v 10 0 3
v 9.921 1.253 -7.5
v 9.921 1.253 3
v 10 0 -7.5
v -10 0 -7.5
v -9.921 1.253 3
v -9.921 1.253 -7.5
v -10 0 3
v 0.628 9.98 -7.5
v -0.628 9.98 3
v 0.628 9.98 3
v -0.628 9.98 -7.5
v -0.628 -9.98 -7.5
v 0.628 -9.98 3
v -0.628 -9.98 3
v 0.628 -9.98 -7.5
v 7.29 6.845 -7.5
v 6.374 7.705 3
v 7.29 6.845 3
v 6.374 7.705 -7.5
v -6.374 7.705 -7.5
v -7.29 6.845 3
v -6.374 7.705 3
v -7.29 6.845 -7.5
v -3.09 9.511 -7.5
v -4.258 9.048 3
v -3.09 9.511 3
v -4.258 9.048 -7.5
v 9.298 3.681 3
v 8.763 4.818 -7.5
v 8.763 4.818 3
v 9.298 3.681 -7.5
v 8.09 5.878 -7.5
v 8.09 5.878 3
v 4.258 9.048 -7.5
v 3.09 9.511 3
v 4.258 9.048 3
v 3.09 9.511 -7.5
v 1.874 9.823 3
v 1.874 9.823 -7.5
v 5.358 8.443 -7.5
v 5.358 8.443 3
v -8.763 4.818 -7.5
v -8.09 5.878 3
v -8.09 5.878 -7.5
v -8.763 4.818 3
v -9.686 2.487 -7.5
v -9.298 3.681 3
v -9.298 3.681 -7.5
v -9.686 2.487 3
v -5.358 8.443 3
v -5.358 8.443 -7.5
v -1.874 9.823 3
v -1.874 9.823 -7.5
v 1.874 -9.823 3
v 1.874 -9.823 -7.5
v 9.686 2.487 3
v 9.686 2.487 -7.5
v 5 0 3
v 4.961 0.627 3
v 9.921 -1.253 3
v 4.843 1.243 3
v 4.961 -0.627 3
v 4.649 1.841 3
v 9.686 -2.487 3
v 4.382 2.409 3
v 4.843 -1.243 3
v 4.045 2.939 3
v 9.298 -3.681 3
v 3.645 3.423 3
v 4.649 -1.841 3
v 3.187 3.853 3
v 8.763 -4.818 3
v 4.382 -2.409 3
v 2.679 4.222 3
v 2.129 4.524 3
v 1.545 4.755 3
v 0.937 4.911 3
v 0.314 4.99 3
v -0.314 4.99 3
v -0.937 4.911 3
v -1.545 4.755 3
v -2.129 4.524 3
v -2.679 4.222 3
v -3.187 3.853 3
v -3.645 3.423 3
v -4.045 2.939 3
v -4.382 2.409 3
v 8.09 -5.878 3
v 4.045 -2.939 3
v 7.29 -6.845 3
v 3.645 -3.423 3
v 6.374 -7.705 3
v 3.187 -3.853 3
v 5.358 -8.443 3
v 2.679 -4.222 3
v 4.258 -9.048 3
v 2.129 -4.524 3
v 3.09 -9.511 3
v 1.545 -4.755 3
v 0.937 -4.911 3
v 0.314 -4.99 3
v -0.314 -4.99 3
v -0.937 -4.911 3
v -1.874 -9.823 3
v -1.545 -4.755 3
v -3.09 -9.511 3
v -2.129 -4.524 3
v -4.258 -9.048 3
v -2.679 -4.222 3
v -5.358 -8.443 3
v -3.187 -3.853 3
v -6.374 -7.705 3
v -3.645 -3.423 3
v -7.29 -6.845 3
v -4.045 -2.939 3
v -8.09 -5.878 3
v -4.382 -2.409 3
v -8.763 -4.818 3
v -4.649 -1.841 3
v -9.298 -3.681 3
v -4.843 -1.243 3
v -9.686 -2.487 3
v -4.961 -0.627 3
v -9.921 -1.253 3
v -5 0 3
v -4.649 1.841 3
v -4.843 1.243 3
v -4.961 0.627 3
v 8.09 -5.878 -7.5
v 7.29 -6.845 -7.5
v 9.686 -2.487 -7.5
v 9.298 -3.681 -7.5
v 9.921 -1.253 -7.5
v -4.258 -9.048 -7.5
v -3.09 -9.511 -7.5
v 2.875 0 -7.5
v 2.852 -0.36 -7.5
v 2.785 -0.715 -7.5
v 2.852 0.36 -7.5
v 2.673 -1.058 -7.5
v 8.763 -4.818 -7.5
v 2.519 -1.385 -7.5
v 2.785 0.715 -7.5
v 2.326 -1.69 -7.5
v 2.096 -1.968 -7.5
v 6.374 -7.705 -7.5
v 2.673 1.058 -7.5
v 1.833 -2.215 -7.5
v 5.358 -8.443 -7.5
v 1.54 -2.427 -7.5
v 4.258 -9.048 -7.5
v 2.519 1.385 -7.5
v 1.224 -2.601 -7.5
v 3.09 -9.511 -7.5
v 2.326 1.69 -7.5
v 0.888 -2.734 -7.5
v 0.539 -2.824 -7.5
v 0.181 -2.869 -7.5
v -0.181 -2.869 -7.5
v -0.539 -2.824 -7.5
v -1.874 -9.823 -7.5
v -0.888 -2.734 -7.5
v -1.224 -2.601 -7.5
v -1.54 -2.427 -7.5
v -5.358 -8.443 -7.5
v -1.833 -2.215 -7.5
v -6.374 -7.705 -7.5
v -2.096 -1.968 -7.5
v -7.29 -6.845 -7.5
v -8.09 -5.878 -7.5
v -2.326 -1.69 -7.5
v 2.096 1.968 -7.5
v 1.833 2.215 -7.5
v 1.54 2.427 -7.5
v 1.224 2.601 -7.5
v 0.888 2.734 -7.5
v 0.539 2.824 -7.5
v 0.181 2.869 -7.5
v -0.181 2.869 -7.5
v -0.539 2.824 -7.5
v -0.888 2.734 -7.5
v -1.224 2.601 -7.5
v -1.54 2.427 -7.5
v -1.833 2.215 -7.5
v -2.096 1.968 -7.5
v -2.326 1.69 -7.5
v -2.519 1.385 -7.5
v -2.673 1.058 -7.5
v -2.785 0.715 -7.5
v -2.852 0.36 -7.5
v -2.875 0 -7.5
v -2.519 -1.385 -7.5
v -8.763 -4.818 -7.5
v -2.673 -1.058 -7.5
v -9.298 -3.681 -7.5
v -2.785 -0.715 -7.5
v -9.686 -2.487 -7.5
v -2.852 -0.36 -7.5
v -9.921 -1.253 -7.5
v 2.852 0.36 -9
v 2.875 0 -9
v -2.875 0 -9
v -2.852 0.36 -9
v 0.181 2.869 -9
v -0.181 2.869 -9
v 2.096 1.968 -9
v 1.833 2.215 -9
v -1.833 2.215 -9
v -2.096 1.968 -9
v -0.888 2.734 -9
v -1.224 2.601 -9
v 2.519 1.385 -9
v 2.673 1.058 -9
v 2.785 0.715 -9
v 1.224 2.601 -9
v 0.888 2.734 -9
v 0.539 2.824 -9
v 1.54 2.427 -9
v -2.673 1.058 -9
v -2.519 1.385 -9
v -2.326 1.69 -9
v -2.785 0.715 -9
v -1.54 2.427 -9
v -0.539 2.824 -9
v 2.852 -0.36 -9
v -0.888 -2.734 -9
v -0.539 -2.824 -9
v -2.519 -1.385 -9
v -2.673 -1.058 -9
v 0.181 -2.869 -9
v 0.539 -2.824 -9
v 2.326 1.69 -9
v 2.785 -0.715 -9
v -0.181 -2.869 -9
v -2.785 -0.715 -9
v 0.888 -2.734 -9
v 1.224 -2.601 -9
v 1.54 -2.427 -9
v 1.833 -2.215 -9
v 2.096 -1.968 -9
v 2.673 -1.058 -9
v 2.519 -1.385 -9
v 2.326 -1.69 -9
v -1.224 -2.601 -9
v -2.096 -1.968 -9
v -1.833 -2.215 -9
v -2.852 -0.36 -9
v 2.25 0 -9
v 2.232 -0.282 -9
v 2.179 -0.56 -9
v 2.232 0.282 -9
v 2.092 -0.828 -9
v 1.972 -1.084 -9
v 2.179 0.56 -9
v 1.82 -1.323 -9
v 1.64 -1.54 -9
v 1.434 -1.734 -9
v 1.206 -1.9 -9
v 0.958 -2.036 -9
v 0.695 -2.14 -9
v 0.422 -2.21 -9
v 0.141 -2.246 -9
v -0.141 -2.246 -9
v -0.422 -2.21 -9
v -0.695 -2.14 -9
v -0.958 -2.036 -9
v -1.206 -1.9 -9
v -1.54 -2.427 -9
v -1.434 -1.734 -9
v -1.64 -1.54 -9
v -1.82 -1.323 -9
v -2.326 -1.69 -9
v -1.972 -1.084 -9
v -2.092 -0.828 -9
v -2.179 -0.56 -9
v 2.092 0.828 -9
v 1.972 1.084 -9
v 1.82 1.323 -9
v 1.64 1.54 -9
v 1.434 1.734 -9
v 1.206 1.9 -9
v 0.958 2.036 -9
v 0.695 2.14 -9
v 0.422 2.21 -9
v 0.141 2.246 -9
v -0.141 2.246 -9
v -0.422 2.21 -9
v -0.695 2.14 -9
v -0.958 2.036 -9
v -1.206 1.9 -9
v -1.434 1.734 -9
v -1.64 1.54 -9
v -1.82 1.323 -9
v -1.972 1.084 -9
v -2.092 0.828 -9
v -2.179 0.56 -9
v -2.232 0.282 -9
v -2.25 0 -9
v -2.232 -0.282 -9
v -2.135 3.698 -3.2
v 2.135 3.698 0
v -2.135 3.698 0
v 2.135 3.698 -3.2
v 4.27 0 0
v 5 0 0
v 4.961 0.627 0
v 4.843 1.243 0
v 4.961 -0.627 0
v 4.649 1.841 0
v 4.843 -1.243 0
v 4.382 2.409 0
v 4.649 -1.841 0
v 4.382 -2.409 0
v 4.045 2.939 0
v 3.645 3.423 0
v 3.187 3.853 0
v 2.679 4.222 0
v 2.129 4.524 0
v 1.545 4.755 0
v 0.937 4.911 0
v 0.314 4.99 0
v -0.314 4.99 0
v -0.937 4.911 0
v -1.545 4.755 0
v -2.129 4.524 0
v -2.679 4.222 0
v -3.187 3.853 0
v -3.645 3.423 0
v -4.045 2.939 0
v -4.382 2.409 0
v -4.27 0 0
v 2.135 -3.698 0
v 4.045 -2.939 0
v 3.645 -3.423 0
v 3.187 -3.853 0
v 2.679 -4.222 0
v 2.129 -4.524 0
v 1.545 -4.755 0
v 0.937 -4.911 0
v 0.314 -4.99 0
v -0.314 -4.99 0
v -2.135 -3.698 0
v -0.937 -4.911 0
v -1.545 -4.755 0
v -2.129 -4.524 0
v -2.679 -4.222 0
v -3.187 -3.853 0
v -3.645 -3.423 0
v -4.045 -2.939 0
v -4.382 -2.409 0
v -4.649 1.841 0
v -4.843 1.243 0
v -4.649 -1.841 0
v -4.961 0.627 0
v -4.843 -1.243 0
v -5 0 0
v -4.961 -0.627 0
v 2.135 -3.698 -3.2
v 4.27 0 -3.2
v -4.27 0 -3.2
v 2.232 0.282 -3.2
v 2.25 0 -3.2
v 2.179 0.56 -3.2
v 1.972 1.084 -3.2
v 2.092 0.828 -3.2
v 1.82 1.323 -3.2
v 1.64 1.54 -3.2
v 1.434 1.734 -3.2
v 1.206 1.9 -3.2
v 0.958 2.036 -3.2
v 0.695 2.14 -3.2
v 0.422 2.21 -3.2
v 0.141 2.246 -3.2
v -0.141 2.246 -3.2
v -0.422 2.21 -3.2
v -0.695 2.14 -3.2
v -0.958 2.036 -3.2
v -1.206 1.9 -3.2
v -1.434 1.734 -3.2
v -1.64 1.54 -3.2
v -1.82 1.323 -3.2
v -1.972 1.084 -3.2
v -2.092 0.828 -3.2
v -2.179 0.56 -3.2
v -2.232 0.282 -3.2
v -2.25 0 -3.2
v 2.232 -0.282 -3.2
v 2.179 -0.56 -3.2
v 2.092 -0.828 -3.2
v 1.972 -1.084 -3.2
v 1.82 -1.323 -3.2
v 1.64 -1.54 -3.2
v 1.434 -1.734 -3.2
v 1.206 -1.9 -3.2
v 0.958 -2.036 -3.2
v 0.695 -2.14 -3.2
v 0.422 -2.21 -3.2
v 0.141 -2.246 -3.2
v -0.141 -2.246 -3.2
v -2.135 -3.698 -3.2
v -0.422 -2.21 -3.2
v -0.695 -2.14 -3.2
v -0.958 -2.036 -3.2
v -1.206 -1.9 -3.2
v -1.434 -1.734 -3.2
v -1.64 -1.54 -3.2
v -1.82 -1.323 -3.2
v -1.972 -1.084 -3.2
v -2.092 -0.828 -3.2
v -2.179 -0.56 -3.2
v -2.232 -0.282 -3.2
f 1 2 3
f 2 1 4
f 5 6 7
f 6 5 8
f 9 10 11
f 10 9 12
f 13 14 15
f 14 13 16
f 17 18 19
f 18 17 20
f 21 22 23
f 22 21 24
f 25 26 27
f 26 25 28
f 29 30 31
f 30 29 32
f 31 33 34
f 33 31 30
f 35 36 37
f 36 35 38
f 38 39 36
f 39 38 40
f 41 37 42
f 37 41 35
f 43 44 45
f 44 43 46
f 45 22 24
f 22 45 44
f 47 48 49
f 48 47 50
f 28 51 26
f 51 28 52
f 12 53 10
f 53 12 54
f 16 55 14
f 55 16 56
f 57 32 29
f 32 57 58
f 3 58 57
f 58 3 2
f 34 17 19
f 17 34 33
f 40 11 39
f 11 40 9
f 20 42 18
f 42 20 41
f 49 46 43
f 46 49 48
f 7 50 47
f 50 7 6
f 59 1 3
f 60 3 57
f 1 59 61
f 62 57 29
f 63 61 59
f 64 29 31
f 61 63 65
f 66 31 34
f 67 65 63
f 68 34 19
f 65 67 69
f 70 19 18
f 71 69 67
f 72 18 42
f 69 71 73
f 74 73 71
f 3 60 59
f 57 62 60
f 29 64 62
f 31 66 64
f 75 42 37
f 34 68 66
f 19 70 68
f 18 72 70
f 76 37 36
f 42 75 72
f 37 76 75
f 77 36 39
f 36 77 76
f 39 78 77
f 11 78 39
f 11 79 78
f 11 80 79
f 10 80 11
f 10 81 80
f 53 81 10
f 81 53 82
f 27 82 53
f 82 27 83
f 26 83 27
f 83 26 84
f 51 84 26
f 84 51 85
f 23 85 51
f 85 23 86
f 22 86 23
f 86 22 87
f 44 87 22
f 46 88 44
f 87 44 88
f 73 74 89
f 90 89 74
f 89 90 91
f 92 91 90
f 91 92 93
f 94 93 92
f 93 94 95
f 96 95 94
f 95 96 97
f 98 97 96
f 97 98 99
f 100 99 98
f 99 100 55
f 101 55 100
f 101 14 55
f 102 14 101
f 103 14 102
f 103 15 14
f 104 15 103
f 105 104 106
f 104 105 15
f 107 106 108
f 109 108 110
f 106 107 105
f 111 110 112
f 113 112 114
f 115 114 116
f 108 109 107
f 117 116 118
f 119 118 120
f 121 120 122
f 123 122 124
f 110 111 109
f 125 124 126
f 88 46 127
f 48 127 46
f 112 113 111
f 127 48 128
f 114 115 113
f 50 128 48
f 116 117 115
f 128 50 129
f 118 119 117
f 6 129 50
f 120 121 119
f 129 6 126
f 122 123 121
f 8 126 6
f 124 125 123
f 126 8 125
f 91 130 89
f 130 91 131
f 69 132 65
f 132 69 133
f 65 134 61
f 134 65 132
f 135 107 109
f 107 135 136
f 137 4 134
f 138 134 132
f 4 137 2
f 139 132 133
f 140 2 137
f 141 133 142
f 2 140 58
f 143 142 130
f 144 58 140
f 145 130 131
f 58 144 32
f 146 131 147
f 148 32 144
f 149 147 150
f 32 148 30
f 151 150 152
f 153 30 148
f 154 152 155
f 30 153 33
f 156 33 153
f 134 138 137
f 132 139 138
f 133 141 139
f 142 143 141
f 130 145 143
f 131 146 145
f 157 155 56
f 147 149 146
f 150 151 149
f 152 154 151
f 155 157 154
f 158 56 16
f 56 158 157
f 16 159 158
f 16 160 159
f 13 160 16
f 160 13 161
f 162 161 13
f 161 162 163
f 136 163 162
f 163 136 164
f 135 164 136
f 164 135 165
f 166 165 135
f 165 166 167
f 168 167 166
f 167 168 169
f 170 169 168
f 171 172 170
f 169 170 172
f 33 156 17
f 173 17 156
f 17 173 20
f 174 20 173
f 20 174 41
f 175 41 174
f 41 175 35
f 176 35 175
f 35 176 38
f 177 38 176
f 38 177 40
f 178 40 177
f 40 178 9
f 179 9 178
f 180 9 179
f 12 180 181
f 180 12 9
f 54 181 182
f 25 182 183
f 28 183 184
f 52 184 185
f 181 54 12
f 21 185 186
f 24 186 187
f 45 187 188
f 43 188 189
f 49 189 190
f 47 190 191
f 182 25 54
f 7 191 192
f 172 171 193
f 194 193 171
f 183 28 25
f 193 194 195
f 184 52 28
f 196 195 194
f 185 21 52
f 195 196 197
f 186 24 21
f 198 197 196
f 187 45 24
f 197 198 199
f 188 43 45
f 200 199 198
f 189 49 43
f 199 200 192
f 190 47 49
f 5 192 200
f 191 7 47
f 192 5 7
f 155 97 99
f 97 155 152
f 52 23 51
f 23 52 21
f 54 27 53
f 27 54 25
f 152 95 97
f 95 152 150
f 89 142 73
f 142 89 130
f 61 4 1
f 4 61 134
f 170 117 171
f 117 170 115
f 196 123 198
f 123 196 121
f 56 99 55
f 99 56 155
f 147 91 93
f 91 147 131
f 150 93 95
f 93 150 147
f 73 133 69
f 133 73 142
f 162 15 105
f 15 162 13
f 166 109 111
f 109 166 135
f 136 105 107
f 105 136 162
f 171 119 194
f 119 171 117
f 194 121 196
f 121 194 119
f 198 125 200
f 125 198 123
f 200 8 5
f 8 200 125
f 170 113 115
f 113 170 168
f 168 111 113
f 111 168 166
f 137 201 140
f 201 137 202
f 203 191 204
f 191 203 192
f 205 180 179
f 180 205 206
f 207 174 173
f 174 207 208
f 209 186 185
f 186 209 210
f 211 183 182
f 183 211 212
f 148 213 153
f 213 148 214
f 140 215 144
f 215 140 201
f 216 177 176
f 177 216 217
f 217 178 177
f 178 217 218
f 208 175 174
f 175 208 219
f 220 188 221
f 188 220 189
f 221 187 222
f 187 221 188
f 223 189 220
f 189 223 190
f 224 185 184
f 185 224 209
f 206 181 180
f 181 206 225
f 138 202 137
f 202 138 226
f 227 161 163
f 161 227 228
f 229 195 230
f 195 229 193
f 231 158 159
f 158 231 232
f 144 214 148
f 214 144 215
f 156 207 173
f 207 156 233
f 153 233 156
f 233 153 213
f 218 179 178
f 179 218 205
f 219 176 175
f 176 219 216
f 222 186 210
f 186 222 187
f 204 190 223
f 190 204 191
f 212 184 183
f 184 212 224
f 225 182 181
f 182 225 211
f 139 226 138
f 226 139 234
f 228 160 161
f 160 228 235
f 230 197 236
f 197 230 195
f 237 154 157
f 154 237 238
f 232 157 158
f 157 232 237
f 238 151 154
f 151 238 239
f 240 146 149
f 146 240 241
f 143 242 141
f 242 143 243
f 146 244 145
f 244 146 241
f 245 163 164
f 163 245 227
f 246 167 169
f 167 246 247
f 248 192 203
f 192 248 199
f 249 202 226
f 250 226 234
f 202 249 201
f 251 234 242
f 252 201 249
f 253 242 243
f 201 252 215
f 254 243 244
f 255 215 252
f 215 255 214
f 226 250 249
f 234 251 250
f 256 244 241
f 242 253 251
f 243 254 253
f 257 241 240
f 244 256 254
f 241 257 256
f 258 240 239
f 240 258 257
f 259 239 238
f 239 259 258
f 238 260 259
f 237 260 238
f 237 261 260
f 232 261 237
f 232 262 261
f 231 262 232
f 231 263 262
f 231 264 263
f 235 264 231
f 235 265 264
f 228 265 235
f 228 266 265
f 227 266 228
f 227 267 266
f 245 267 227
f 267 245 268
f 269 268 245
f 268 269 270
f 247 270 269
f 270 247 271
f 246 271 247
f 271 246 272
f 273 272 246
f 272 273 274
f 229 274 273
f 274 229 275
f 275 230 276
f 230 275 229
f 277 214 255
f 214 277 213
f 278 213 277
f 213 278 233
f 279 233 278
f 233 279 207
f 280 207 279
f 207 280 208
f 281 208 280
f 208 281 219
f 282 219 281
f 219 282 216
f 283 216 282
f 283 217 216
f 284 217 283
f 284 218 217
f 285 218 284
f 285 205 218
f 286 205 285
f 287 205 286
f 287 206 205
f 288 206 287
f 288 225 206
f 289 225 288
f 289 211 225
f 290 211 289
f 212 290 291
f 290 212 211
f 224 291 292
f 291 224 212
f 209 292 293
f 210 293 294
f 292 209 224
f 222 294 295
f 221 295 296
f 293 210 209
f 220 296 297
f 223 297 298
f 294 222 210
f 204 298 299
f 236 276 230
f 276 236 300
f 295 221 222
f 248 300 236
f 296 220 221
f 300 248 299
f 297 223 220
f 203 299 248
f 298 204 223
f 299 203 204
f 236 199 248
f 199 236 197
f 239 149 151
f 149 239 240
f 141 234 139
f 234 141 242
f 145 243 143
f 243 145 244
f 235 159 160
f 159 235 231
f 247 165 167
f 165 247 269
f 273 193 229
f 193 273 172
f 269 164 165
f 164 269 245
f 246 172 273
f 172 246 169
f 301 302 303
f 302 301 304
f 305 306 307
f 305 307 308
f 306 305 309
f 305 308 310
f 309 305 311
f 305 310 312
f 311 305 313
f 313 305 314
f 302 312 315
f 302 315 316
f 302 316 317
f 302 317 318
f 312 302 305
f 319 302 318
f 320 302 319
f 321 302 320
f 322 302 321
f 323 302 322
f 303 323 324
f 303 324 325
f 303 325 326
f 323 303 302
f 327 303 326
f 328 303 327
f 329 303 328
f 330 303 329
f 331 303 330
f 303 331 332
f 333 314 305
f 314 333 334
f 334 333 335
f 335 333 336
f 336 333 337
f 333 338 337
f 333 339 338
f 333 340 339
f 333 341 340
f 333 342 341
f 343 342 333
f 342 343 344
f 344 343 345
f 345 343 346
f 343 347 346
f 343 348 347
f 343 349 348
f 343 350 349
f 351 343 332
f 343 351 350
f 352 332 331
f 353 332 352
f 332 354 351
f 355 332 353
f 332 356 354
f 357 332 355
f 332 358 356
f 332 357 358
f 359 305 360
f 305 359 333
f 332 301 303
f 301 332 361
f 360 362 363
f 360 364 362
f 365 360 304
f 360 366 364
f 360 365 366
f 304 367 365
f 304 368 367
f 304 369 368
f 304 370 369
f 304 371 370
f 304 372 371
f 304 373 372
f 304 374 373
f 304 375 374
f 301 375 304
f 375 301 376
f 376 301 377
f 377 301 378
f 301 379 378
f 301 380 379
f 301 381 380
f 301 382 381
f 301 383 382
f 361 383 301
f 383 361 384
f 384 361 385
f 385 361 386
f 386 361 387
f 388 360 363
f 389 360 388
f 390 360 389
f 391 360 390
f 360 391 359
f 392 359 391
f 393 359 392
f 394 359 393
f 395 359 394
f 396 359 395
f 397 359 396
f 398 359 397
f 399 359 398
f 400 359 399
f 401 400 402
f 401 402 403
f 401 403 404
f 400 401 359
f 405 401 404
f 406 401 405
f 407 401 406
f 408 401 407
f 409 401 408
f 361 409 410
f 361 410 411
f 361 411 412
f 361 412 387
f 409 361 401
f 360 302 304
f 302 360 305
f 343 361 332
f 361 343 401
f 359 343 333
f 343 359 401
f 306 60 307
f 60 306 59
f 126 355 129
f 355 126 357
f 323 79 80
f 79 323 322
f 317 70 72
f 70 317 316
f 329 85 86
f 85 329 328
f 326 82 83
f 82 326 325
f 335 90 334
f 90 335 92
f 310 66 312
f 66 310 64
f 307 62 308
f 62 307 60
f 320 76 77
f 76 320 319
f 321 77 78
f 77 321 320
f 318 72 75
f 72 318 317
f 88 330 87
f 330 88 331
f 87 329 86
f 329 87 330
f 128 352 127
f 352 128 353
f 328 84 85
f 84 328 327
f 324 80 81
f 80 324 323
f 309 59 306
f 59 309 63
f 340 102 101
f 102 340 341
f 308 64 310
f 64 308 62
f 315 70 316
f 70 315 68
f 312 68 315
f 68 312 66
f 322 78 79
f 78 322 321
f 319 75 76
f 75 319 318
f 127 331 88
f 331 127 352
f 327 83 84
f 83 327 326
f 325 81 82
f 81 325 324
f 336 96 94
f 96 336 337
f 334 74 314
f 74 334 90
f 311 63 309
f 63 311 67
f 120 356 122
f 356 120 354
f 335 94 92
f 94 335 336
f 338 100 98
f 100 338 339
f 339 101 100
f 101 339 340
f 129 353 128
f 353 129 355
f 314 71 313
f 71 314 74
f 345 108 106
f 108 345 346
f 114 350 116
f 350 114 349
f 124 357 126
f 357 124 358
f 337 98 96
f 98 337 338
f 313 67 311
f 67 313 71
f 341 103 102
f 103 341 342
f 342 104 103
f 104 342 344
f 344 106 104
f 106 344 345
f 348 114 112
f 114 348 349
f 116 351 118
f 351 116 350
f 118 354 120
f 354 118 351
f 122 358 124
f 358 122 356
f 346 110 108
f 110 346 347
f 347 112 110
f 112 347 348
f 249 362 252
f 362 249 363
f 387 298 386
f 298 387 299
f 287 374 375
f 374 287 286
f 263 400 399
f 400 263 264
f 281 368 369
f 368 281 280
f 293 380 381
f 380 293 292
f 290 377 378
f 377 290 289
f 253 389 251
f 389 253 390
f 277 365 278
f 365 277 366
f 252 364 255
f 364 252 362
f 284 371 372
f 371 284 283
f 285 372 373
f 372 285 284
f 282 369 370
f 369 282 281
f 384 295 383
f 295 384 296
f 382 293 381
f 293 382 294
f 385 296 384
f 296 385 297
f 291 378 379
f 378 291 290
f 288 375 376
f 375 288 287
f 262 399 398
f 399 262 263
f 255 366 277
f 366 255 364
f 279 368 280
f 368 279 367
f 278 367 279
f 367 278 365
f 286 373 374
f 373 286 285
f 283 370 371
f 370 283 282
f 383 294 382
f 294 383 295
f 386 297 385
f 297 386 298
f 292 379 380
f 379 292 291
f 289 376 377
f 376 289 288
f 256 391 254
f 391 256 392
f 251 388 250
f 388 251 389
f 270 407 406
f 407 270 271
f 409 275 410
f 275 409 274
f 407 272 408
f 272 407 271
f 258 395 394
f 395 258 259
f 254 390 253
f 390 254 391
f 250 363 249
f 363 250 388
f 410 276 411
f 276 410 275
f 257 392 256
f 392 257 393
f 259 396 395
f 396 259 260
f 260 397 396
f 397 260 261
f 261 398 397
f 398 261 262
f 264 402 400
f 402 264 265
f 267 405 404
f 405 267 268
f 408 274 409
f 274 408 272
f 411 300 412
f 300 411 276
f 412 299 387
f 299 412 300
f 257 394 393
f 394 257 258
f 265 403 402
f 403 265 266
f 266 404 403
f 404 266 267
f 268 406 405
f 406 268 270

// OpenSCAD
$fn = 50;


difference() {
	union() {
		translate(v = [0, 0, -7.5000000000]) {
			cylinder(h = 10.5000000000, r = 10.0000000000);
		}
		#translate(v = [0, 0, -9.0000000000]) {
			cylinder(h = 9, r = 2.8750000000);
		}
	}
	union() {
		translate(v = [0, 0, 0]) {
			rotate(a = [0, 0, 0]) {
				difference() {
					union() {
						translate(v = [0, 0, -3.2000000000]) {
							linear_extrude(height = 3.2000000000) {
								polygon(points = [[4.2698000000, 0.0000000000], [2.1349000000, 3.6977552691], [-2.1349000000, 3.6977552691], [-4.2698000000, 0.0000000000], [-2.1349000000, -3.6977552691], [2.1349000000, -3.6977552691]]);
							}
						}
					}
					union();
				}
			}
		}
		#cylinder(h = 3, r = 5.0000000000);
		#translate(v = [0, 0, -100.0000000000]) {
			cylinder(h = 200, r = 2.2500000000);
		}
	}
}
